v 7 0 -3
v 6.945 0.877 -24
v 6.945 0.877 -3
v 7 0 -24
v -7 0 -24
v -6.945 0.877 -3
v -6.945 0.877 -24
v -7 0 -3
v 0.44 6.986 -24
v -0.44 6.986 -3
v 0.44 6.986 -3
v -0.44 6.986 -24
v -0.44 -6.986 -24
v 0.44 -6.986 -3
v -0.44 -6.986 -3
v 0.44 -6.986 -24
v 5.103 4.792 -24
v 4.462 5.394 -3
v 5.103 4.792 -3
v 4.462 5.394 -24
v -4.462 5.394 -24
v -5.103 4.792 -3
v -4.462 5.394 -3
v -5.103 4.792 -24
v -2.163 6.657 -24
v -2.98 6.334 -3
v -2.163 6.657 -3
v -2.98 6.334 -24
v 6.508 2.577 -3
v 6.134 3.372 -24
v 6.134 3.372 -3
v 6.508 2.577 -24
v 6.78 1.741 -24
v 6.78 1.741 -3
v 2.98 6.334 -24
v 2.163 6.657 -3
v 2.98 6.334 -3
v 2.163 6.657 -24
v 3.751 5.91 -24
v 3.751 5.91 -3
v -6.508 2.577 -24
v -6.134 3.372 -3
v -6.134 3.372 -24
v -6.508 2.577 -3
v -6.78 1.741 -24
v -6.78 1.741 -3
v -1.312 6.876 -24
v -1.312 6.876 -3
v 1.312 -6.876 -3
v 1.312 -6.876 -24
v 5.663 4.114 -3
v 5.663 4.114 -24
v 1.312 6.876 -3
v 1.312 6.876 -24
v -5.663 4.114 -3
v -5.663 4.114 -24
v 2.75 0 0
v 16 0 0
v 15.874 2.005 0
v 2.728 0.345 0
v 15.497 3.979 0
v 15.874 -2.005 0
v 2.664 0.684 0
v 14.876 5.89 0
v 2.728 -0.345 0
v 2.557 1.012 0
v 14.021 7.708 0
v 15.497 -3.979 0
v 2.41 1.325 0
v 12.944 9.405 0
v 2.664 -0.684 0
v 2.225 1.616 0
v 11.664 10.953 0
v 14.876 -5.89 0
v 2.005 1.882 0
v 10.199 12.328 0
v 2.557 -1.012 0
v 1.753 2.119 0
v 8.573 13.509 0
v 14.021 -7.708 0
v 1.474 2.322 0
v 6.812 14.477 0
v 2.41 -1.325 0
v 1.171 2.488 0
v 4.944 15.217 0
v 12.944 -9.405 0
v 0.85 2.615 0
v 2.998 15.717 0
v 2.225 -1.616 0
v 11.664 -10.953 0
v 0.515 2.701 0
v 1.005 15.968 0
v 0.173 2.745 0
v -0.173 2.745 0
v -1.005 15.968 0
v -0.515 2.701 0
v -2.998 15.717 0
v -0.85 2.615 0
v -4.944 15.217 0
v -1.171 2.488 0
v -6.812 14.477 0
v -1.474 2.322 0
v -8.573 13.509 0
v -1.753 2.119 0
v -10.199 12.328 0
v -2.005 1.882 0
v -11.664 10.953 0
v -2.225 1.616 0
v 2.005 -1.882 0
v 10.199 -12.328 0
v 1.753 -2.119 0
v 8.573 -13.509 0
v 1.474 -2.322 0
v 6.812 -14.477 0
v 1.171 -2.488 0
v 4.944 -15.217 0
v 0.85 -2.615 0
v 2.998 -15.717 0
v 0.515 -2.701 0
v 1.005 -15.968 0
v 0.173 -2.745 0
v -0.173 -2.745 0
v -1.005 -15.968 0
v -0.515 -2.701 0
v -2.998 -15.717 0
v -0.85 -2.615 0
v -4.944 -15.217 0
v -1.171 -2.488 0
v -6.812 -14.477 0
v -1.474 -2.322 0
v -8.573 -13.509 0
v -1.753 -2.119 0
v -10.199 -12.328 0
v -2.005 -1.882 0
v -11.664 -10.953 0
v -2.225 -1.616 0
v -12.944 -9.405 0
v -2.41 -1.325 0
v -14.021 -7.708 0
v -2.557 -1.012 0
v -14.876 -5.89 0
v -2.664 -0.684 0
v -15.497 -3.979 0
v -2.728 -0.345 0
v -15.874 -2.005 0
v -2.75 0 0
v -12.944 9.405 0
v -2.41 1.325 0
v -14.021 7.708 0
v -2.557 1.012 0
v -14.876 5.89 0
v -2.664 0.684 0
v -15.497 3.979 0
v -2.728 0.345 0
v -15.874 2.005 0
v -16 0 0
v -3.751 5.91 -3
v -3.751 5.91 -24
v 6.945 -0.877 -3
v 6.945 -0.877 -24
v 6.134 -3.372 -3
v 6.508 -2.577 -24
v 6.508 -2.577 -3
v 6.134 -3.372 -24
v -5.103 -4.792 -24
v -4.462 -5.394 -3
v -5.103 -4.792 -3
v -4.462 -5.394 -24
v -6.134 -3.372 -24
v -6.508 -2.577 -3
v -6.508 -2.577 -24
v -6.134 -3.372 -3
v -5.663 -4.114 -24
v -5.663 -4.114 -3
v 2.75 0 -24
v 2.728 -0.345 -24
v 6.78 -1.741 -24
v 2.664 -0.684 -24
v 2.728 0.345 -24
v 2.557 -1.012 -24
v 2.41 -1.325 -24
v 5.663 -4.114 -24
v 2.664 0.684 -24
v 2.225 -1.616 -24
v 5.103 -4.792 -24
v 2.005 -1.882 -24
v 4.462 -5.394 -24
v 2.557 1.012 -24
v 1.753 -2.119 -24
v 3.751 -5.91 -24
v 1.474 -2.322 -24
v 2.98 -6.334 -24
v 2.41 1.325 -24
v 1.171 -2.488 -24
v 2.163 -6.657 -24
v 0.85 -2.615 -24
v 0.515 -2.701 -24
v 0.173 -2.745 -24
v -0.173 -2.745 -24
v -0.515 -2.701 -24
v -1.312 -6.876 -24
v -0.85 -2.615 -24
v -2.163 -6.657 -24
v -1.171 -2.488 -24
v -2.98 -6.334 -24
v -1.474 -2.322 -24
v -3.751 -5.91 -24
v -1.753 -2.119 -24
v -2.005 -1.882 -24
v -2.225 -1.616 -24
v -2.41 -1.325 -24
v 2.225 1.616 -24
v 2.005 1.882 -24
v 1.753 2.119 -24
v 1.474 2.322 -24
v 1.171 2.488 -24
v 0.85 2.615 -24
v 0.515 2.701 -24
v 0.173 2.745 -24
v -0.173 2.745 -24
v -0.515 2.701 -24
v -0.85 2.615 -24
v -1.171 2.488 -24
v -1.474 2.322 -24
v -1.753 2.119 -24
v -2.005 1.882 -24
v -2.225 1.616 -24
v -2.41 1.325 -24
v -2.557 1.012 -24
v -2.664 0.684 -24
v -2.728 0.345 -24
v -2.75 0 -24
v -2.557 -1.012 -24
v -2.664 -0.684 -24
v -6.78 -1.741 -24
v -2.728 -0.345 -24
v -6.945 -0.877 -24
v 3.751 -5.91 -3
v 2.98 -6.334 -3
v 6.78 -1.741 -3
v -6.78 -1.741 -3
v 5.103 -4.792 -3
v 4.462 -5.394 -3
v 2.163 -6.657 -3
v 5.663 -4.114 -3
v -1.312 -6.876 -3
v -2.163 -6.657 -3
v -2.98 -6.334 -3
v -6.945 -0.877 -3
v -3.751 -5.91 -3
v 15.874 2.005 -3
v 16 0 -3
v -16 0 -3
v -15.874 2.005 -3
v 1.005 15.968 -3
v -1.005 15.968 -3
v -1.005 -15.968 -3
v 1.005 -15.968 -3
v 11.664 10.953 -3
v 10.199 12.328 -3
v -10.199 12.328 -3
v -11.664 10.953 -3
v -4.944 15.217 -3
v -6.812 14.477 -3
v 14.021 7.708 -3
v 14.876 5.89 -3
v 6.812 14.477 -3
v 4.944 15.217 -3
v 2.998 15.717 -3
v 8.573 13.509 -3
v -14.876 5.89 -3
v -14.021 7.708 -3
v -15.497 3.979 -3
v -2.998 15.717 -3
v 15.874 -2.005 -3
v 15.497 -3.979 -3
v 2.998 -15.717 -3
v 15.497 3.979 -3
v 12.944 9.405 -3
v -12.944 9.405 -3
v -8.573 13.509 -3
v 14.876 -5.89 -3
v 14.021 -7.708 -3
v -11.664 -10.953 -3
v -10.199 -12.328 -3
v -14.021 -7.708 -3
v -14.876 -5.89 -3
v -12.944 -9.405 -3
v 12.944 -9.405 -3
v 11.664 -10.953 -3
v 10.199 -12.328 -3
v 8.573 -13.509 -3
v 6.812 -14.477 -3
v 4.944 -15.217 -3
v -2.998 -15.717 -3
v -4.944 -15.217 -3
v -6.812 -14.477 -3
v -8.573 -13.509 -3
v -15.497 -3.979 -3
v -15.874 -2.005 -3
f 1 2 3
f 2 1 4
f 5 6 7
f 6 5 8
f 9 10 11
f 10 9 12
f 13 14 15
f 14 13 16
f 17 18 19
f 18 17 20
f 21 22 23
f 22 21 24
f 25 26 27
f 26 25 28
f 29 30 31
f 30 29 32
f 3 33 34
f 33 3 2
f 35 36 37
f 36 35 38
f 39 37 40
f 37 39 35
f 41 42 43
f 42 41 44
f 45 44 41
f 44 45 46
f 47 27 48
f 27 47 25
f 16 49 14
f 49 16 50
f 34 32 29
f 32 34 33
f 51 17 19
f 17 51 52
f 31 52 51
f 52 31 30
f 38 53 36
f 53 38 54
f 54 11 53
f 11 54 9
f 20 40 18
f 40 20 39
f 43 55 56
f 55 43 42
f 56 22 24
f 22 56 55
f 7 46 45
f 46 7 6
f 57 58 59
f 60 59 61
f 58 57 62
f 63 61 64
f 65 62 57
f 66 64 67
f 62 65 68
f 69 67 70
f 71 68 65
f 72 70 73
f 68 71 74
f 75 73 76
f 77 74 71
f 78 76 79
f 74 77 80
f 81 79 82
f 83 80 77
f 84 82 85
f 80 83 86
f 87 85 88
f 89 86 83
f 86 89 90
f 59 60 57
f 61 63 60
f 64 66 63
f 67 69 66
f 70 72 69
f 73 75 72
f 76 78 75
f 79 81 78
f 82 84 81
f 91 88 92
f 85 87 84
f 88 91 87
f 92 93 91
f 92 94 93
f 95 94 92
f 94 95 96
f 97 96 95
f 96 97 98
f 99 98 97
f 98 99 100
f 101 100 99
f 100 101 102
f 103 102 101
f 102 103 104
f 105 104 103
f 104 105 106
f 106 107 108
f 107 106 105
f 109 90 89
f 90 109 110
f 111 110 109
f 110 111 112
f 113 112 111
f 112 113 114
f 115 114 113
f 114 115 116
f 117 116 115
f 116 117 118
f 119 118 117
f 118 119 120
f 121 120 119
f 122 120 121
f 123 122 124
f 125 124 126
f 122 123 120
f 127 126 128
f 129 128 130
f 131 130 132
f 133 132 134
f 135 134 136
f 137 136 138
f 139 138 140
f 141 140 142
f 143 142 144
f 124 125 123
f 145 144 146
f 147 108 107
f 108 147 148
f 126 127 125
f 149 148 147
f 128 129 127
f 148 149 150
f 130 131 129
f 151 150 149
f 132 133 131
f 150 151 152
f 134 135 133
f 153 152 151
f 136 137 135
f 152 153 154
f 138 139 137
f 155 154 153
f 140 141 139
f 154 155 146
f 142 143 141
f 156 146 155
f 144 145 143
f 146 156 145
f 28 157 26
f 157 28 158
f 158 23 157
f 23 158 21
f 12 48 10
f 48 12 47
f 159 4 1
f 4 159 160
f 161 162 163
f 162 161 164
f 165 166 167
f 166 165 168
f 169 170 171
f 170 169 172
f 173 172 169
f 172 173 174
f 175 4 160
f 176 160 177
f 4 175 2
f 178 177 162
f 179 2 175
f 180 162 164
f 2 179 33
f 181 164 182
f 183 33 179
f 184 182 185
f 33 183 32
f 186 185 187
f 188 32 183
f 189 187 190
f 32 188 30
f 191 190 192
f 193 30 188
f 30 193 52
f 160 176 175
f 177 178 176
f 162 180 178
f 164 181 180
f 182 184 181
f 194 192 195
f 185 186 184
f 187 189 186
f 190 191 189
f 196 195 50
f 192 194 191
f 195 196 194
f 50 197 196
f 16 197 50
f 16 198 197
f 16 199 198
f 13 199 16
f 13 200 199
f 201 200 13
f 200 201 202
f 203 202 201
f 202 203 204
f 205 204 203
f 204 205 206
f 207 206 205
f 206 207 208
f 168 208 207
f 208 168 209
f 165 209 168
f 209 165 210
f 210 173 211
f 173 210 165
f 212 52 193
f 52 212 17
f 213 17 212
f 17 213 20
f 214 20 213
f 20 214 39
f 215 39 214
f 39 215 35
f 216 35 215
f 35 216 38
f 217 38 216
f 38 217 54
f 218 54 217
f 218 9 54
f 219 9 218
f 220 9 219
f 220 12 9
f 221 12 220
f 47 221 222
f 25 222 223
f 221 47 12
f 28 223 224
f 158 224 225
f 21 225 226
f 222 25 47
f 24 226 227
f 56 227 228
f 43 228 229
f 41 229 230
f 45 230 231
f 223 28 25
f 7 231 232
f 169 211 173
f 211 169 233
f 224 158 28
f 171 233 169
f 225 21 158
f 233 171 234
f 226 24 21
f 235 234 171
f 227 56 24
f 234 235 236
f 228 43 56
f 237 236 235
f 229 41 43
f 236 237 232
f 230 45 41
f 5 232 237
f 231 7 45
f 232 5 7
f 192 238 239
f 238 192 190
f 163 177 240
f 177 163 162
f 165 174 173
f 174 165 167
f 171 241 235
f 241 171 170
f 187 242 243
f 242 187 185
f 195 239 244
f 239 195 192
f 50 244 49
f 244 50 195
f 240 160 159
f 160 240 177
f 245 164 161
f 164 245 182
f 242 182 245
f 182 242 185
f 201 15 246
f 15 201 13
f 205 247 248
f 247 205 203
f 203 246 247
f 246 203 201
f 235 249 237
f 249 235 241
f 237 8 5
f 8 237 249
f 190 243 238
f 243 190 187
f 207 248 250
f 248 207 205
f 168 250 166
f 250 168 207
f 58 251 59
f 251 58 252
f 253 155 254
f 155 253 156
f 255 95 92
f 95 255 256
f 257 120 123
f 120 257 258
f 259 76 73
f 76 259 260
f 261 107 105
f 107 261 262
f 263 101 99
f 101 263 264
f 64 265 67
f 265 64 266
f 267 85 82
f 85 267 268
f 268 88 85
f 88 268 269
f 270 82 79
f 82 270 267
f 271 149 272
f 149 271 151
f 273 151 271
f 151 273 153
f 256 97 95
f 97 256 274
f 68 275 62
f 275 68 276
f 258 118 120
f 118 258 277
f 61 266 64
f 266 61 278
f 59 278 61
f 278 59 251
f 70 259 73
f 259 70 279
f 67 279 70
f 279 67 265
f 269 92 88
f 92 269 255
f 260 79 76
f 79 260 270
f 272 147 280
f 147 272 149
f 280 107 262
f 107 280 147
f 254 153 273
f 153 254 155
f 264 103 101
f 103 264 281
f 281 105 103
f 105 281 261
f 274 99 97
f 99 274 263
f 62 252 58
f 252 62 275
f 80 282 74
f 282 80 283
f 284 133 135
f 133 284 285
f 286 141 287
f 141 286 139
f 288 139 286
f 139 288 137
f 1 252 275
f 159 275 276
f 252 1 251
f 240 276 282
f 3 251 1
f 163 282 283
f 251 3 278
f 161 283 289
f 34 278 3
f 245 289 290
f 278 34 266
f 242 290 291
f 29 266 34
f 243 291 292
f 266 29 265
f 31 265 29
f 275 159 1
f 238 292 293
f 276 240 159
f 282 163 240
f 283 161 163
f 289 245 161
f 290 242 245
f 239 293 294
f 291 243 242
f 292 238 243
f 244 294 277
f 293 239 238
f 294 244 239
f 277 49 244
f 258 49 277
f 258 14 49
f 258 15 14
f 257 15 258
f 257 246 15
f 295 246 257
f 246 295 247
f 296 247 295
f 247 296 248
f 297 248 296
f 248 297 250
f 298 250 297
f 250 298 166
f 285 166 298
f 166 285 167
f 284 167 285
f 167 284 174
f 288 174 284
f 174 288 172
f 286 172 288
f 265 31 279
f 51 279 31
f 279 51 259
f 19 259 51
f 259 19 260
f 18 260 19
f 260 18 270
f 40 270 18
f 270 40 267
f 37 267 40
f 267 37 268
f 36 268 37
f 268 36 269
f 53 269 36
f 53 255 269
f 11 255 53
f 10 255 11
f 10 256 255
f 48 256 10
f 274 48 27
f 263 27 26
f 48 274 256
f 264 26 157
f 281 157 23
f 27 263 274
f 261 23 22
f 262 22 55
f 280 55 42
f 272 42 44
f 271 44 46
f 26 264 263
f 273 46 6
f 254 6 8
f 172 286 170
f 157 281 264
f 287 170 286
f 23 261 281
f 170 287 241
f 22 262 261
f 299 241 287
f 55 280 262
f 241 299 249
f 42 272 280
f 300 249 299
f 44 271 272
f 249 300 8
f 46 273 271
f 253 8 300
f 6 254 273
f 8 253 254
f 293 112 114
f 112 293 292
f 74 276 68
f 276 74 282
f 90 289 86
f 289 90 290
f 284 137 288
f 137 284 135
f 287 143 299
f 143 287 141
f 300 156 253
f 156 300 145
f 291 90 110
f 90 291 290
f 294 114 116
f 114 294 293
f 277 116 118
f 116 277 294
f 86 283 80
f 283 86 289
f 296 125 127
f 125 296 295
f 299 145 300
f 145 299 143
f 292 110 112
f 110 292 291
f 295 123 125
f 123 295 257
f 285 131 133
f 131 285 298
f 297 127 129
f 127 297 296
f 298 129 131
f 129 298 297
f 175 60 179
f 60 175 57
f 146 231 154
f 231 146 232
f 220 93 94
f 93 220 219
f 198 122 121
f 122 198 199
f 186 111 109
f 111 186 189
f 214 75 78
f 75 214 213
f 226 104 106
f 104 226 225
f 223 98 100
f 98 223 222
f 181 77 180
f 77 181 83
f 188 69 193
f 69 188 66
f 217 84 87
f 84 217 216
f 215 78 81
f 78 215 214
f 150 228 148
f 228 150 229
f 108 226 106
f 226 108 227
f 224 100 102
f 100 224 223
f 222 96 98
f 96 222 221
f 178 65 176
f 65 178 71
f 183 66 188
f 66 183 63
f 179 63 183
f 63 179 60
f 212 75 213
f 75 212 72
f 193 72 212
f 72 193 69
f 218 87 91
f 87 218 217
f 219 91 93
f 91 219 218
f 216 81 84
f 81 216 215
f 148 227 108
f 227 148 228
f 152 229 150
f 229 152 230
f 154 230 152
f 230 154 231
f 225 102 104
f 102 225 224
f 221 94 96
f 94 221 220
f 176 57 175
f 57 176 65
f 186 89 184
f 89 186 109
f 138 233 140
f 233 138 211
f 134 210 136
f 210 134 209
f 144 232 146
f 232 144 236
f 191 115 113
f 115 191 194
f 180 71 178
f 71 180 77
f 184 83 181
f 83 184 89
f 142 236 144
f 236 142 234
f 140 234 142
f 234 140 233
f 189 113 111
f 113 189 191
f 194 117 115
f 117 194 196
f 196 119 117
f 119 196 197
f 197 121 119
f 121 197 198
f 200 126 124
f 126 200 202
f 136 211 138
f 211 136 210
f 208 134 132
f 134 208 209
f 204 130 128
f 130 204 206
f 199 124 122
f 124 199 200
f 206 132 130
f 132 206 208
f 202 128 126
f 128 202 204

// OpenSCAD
$fn = 50;


difference() {
	union() {
		translate(v = [0, 0, -24.0000000000]) {
			cylinder(h = 24, r = 7.0000000000);
		}
		translate(v = [0, 0, -3.0000000000]) {
			cylinder(h = 3, r = 16.0000000000);
		}
	}
	union() {
		#translate(v = [0, 0, -24]) {
			cylinder(h = 24, r = 2.7500000000);
		}
	}
}
